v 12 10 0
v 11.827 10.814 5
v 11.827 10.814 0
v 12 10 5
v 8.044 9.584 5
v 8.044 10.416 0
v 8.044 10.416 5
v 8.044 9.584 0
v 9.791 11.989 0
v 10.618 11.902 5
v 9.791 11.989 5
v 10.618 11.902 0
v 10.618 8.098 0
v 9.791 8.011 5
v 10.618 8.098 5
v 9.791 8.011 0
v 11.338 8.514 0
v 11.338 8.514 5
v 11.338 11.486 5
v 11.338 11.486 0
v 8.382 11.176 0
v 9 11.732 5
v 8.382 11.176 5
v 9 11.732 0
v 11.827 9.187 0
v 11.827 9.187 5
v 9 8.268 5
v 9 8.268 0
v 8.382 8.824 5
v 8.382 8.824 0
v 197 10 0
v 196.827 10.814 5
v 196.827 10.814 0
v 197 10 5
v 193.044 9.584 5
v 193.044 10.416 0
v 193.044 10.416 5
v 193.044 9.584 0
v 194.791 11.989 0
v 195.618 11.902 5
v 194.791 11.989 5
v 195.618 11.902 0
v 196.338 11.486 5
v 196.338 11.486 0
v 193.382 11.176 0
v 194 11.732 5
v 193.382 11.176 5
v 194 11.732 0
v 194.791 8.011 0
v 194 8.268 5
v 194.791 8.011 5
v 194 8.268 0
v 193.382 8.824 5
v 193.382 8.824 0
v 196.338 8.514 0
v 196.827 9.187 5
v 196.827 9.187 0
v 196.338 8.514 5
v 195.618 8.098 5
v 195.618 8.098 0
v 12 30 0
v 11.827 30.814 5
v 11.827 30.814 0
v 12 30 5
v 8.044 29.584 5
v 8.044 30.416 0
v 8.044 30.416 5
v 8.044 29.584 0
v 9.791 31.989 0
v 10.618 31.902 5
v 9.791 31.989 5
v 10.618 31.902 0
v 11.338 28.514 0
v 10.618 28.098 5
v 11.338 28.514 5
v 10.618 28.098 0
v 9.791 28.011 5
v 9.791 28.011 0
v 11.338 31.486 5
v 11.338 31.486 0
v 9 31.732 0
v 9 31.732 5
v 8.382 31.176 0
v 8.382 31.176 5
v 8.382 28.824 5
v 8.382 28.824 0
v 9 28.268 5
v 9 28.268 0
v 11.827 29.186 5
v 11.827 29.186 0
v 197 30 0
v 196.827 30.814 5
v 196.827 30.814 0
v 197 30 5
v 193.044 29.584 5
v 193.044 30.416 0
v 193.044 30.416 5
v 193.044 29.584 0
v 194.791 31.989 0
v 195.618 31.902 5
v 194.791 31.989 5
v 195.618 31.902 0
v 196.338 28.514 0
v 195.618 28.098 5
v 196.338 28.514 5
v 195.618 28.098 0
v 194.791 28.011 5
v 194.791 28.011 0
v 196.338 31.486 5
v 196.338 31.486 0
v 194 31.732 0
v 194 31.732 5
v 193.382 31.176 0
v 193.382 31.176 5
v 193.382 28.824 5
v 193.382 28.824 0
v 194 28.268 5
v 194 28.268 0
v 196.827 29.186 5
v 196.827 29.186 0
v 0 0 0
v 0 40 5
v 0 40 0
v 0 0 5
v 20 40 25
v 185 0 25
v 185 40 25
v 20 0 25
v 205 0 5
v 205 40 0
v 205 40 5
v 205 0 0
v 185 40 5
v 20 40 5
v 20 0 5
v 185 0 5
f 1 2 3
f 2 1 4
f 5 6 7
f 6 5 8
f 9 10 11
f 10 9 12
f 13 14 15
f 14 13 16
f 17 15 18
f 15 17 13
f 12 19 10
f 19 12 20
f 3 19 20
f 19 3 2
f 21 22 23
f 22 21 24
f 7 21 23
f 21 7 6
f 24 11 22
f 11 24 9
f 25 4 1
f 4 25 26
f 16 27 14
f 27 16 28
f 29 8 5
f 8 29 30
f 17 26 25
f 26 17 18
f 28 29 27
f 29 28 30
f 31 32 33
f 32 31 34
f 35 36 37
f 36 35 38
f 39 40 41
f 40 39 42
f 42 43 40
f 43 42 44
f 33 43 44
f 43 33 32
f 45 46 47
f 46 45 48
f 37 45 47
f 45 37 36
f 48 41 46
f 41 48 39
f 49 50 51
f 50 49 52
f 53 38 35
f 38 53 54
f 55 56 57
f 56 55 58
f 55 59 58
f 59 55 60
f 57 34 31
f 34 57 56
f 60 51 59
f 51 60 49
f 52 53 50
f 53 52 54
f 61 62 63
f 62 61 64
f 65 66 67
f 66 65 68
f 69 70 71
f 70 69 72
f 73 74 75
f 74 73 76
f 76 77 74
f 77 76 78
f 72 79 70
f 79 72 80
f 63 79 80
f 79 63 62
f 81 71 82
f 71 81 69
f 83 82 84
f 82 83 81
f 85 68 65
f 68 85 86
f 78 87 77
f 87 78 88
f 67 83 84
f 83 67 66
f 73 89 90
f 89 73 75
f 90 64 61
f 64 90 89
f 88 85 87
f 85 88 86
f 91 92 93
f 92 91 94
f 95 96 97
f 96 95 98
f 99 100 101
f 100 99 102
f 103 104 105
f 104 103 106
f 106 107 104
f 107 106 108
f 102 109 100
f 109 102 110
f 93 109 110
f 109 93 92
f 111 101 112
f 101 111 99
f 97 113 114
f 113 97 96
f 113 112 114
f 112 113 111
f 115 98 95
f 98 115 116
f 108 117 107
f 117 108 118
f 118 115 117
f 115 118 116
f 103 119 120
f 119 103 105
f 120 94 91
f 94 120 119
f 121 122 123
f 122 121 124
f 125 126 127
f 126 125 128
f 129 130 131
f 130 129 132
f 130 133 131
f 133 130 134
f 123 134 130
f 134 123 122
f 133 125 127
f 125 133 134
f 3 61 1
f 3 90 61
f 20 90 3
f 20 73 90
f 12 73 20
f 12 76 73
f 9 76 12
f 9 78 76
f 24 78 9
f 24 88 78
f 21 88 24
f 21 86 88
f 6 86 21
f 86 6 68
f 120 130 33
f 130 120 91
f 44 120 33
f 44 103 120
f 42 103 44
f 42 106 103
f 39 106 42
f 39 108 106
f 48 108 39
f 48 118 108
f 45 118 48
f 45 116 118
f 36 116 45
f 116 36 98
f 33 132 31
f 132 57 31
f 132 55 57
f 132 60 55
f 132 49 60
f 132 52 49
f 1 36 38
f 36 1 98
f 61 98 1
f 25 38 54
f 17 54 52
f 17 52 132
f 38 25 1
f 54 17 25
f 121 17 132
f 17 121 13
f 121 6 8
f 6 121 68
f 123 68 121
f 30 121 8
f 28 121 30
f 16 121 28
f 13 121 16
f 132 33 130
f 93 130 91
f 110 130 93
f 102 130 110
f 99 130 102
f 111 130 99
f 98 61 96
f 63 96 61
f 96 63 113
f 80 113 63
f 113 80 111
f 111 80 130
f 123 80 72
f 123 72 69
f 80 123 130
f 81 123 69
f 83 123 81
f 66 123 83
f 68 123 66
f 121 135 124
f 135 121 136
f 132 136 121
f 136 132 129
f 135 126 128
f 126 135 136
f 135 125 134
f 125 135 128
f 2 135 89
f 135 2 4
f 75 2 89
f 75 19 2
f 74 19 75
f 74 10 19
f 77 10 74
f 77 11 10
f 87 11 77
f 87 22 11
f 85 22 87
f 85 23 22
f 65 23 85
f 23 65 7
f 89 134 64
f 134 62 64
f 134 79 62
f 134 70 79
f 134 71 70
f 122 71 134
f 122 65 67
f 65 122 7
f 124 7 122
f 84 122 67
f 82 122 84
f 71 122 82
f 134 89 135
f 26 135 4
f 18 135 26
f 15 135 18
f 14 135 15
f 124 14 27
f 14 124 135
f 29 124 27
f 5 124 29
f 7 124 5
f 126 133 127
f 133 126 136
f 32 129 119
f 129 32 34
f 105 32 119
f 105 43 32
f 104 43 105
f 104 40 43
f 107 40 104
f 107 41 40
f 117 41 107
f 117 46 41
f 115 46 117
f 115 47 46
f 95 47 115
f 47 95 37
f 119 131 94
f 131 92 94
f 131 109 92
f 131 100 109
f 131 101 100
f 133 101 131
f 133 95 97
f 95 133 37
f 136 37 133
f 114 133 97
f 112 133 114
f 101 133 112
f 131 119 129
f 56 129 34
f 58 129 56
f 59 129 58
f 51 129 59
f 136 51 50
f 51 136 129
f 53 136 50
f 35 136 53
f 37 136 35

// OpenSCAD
/**
 * Table beam
 * 
 * Created by Diego Viejo
 * 01/Feb/2016
 * 
 */


length = 165;
extraLength = 20;

width = 40;

difference()
{
    cube([length+extraLength*2, width, 20+5]);
    
    translate([-1, -1, 5]) cube([extraLength+1, width+2, 20+1]);
    translate([length+extraLength, -1, 5]) cube([extraLength+1, width+2, 20+1]);
    
    for(i=[-1, 1]) for(j=[-1, 1])
        translate([(length+extraLength*2)/2+j*(length+extraLength)/2, width/2+i*width/4, -1]) cylinder(d=4, h=5+2, $fn=15);
}
